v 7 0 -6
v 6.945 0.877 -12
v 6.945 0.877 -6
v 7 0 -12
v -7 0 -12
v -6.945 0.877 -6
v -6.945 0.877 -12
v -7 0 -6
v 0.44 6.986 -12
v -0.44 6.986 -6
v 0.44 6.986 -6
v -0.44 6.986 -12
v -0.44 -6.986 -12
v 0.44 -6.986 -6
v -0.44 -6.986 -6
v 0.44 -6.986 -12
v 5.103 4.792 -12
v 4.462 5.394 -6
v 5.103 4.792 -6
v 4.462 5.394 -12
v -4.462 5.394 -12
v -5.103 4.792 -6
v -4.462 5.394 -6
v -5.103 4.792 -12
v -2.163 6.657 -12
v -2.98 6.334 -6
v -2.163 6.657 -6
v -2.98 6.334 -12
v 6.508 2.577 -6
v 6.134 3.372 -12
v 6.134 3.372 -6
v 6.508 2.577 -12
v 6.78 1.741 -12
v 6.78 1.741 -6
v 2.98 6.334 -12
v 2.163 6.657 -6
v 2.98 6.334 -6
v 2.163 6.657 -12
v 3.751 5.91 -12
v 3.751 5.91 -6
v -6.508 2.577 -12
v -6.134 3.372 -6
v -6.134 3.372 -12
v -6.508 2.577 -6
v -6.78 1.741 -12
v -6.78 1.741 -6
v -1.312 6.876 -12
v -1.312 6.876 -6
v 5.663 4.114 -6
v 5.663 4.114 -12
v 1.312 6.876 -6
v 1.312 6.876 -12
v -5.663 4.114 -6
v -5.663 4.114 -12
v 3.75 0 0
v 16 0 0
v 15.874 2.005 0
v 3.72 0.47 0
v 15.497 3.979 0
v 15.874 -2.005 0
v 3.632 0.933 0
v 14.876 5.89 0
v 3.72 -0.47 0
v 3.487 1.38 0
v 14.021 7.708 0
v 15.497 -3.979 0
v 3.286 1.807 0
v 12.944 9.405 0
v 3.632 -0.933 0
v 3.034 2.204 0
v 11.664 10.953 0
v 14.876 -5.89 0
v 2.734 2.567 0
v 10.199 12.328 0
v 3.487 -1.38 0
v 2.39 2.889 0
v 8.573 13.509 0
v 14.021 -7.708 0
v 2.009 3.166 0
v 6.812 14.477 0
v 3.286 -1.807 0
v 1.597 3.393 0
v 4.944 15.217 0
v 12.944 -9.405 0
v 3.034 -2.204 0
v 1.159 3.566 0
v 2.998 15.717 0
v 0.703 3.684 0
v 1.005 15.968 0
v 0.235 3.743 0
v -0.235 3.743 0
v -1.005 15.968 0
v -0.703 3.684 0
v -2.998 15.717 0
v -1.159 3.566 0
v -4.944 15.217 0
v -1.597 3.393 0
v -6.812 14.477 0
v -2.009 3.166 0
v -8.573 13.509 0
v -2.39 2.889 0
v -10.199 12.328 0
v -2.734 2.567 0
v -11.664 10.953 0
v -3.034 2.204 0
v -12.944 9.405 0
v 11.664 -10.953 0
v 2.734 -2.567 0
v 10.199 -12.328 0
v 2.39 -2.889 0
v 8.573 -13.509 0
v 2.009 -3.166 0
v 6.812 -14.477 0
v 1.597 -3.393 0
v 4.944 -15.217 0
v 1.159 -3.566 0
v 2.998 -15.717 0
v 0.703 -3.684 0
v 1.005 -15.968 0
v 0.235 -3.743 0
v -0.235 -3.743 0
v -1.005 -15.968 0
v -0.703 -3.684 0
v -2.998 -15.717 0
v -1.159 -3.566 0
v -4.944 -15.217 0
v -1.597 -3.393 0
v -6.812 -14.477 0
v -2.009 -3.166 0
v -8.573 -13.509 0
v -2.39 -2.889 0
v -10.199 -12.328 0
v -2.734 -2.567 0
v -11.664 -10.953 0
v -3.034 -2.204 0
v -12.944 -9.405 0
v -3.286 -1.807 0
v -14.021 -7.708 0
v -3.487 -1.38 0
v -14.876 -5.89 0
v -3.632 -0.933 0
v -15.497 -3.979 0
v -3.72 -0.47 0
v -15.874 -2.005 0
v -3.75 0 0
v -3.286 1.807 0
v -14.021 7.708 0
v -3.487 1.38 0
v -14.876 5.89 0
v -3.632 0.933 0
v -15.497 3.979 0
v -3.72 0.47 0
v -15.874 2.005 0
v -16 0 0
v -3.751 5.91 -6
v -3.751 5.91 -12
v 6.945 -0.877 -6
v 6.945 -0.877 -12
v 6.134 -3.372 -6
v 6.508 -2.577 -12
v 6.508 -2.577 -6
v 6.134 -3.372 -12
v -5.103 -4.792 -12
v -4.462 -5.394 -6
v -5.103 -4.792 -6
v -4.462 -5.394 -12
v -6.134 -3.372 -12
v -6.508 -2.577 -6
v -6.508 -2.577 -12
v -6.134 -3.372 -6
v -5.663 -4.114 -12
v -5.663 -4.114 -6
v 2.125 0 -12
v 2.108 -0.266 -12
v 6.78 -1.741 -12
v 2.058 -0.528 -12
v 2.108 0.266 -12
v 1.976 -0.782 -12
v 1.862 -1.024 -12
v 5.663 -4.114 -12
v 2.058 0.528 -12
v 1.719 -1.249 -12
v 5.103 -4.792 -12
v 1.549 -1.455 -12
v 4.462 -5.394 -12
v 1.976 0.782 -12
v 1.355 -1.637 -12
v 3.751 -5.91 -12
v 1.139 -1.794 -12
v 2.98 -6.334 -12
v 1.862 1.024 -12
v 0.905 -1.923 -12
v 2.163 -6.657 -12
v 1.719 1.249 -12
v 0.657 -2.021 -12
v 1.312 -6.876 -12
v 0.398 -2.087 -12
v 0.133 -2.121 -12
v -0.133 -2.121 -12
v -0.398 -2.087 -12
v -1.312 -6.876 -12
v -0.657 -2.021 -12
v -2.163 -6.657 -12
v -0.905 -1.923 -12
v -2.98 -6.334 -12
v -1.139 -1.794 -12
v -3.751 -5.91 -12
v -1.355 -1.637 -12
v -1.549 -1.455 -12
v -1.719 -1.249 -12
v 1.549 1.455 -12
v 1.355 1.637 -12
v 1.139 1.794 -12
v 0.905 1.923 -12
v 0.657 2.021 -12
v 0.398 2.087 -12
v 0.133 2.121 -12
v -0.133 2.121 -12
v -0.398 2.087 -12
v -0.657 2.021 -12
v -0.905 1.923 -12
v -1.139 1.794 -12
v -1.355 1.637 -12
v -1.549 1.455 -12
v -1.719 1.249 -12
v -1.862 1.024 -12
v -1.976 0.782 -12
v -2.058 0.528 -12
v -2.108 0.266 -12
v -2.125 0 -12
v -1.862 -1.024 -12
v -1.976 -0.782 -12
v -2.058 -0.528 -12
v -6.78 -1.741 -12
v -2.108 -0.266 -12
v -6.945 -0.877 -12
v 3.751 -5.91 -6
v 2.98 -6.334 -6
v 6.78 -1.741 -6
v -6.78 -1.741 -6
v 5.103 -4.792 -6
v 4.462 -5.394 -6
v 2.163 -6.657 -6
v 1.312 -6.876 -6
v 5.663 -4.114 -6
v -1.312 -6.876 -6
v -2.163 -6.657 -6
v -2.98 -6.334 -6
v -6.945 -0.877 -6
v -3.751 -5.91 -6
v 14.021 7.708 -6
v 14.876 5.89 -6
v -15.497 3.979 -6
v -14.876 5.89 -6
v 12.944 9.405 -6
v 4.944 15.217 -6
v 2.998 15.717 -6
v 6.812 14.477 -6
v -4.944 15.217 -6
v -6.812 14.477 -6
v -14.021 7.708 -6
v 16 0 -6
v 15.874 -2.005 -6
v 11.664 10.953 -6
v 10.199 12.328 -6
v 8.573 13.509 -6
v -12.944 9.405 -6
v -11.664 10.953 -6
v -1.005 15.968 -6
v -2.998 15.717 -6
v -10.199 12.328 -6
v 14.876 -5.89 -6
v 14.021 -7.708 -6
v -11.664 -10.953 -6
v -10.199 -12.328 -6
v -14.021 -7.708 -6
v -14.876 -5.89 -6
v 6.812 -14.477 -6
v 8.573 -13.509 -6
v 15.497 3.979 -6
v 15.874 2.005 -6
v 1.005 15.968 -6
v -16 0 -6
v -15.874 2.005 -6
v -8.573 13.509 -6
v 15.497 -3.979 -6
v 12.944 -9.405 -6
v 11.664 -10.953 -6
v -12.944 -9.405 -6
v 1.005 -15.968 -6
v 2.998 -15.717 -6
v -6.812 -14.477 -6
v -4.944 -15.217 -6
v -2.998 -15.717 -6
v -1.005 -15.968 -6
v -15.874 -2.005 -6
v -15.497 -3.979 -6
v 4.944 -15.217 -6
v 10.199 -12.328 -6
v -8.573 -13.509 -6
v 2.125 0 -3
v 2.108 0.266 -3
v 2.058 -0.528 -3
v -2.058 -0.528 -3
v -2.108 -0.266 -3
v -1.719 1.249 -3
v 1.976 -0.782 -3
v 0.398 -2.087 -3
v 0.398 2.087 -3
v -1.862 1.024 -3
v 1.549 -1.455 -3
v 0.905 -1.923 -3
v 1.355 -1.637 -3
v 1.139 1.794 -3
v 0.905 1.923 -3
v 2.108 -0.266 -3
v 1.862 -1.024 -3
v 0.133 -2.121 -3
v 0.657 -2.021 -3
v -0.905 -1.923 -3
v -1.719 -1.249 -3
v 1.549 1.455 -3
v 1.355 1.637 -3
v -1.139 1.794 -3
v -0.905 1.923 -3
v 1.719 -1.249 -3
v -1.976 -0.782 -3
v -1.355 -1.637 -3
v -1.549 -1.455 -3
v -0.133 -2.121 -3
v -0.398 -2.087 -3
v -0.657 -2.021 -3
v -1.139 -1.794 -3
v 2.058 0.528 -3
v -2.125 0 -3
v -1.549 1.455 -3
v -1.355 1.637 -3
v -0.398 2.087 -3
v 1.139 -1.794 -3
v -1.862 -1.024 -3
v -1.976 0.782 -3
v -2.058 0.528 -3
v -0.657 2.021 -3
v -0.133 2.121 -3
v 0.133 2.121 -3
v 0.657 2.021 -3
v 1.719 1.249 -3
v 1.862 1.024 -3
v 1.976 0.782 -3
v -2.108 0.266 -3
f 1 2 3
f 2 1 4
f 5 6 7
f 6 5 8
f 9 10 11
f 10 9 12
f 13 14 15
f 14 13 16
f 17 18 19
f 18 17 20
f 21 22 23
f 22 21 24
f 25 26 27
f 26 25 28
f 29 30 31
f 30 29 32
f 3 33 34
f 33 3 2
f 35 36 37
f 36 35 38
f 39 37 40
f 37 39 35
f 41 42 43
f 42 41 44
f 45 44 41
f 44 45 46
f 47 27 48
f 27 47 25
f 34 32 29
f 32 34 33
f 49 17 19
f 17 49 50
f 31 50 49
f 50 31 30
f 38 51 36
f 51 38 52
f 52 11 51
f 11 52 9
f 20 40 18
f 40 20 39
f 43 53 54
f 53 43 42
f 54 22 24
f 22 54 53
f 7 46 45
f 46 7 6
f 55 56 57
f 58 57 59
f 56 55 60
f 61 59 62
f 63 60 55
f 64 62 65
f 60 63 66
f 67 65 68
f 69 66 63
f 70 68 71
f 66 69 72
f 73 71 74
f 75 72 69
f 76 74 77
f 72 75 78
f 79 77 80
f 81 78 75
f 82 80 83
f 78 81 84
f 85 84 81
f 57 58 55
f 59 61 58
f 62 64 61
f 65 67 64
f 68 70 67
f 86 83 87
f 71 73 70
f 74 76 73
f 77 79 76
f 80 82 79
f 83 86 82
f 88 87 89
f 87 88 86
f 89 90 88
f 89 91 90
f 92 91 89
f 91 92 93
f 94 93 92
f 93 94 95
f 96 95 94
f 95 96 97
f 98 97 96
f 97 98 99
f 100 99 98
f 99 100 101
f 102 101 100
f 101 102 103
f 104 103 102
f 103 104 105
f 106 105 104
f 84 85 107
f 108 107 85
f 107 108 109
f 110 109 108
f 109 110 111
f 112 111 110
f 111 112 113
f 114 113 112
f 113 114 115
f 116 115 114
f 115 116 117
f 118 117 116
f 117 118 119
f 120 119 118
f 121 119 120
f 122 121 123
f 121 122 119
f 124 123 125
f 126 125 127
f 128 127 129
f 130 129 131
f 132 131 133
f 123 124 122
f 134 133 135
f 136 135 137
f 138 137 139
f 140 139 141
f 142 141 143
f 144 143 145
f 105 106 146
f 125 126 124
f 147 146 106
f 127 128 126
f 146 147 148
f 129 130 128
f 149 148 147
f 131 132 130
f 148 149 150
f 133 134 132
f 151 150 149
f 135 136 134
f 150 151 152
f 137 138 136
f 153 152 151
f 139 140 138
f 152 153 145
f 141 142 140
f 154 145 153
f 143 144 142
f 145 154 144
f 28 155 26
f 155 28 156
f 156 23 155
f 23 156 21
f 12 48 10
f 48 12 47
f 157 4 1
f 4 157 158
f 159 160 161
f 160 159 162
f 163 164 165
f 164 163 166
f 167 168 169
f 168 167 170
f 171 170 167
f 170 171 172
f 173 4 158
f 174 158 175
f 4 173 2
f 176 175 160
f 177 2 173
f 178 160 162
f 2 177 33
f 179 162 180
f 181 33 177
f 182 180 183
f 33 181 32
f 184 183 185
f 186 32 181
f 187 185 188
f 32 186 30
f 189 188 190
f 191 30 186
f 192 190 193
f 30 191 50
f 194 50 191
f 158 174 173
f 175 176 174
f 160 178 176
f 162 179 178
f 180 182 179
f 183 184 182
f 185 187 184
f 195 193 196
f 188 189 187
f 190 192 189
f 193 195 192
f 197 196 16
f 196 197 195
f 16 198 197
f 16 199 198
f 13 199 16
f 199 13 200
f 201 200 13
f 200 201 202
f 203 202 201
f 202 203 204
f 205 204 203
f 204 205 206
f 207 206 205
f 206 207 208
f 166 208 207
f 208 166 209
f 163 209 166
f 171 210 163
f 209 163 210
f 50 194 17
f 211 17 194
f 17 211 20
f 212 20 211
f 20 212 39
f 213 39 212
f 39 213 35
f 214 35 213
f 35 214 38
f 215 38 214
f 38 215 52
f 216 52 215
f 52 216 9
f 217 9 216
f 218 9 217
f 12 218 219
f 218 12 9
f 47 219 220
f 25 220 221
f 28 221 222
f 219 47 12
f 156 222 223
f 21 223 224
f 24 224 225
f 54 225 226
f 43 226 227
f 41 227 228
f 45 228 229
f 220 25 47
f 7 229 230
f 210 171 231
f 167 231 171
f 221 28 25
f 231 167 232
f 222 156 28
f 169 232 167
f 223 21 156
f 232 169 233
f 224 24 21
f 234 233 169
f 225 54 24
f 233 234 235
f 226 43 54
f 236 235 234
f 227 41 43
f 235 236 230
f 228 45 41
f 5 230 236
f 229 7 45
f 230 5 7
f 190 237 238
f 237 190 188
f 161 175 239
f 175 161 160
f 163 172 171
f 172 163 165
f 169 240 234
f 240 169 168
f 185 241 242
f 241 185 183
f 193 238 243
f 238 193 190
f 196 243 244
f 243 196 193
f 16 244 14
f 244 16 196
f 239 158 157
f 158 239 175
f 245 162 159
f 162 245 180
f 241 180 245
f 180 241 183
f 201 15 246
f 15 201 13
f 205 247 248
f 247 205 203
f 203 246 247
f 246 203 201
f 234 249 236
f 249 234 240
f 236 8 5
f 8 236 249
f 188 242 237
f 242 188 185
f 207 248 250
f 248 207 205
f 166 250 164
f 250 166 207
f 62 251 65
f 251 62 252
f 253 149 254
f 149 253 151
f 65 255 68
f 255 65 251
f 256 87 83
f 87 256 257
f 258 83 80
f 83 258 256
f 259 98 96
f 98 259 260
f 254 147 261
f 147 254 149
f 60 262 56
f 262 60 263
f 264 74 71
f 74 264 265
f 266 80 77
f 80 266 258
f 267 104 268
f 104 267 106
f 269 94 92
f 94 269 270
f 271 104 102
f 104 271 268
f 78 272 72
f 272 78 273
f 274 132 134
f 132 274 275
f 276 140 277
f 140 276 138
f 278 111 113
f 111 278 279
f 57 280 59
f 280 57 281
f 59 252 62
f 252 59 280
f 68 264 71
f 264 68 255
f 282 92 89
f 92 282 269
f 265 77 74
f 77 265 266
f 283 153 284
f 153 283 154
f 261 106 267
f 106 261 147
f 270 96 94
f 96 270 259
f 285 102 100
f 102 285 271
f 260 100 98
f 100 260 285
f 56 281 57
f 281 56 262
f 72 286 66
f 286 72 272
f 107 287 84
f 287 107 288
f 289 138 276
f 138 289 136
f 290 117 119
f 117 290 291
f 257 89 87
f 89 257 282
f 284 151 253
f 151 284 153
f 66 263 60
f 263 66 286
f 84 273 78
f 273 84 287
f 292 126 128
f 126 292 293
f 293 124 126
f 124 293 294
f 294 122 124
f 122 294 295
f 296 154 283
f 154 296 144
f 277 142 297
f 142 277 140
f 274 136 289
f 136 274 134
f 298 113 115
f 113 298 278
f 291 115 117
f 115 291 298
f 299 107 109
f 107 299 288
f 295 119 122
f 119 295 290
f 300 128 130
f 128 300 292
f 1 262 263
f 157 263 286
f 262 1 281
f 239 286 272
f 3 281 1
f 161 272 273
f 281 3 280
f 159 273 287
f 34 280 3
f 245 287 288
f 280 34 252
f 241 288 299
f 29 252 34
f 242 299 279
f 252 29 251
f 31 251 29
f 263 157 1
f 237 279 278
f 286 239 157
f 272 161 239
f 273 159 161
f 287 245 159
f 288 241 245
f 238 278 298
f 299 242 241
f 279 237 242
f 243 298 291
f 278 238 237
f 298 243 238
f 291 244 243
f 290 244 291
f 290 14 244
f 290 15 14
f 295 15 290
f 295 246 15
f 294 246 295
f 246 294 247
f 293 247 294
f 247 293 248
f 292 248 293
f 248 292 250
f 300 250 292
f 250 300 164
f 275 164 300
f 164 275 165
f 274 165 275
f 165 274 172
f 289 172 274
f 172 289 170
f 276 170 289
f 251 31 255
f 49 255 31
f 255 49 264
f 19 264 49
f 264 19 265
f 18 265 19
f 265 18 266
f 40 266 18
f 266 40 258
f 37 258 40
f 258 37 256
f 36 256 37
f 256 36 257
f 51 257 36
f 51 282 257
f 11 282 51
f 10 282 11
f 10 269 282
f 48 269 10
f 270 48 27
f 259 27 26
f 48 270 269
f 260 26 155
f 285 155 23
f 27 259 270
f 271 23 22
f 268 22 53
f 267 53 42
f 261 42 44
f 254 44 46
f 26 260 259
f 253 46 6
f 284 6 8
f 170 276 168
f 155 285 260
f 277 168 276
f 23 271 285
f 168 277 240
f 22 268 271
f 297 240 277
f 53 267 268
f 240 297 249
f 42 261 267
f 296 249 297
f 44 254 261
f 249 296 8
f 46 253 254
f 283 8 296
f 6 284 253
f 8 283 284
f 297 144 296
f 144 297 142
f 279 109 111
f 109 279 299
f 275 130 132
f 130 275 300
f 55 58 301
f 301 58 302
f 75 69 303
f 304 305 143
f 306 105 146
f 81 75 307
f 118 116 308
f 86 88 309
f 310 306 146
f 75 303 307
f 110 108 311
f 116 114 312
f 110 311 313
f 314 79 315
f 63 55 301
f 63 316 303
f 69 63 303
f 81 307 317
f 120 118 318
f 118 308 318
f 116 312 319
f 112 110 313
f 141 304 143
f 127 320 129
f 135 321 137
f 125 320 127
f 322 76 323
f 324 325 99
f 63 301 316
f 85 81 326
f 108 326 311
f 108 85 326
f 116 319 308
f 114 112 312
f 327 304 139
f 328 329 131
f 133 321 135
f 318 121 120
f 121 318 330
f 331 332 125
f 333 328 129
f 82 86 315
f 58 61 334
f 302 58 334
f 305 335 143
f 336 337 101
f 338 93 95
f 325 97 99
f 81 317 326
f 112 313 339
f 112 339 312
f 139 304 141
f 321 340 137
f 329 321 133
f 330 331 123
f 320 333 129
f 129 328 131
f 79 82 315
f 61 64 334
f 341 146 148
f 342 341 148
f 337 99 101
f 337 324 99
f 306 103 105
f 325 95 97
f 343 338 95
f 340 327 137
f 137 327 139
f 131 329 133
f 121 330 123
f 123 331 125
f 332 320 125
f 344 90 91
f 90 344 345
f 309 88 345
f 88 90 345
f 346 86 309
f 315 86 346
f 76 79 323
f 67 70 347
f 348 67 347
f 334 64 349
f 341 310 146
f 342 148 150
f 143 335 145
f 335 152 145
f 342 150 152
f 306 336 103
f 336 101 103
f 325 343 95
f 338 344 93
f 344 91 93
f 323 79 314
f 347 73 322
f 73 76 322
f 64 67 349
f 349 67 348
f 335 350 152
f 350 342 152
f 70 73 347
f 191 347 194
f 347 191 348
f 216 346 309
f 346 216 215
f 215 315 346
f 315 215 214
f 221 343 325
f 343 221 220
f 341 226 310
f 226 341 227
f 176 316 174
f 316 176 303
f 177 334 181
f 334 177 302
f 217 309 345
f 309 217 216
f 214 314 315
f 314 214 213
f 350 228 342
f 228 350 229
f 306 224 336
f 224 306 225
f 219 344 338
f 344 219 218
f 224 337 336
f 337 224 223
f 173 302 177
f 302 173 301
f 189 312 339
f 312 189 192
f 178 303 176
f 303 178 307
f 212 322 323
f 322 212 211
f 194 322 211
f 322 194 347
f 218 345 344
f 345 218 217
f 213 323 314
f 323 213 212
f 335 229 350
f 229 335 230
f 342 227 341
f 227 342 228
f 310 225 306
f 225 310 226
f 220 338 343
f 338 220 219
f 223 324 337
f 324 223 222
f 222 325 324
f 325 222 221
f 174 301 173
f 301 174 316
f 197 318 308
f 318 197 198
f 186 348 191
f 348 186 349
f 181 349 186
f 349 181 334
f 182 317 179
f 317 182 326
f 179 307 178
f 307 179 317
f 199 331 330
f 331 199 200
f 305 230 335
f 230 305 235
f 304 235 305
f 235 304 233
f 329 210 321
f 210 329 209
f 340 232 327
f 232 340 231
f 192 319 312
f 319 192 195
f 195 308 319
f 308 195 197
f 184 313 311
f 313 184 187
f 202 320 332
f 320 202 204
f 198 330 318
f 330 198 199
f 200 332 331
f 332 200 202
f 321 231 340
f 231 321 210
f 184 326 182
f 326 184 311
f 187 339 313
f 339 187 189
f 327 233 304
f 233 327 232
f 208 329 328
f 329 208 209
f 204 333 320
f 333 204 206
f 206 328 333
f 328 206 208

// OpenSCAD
$fn = 50;


difference() {
	union() {
		translate(v = [0, 0, -12.0000000000]) {
			cylinder(h = 12, r = 7.0000000000);
		}
		translate(v = [0, 0, -6.0000000000]) {
			cylinder(h = 6, r = 16.0000000000);
		}
	}
	union() {
		translate(v = [0, 0, 0]) {
			rotate(a = [0, 0, 0]) {
				difference() {
					union() {
						#translate(v = [0, 0, -12.0000000000]) {
							cylinder(h = 12, r = 2.0000000000);
						}
						#translate(v = [0, 0, -3]) {
							cylinder(h = 3, r1 = 2.1250000000, r2 = 3.7500000000);
						}
						#translate(v = [0, 0, -12.0000000000]) {
							cylinder(h = 12, r = 2.1250000000);
						}
						#translate(v = [0, 0, -12.0000000000]) {
							cylinder(h = 12, r = 2.0000000000);
						}
					}
					union();
				}
			}
		}
	}
}
